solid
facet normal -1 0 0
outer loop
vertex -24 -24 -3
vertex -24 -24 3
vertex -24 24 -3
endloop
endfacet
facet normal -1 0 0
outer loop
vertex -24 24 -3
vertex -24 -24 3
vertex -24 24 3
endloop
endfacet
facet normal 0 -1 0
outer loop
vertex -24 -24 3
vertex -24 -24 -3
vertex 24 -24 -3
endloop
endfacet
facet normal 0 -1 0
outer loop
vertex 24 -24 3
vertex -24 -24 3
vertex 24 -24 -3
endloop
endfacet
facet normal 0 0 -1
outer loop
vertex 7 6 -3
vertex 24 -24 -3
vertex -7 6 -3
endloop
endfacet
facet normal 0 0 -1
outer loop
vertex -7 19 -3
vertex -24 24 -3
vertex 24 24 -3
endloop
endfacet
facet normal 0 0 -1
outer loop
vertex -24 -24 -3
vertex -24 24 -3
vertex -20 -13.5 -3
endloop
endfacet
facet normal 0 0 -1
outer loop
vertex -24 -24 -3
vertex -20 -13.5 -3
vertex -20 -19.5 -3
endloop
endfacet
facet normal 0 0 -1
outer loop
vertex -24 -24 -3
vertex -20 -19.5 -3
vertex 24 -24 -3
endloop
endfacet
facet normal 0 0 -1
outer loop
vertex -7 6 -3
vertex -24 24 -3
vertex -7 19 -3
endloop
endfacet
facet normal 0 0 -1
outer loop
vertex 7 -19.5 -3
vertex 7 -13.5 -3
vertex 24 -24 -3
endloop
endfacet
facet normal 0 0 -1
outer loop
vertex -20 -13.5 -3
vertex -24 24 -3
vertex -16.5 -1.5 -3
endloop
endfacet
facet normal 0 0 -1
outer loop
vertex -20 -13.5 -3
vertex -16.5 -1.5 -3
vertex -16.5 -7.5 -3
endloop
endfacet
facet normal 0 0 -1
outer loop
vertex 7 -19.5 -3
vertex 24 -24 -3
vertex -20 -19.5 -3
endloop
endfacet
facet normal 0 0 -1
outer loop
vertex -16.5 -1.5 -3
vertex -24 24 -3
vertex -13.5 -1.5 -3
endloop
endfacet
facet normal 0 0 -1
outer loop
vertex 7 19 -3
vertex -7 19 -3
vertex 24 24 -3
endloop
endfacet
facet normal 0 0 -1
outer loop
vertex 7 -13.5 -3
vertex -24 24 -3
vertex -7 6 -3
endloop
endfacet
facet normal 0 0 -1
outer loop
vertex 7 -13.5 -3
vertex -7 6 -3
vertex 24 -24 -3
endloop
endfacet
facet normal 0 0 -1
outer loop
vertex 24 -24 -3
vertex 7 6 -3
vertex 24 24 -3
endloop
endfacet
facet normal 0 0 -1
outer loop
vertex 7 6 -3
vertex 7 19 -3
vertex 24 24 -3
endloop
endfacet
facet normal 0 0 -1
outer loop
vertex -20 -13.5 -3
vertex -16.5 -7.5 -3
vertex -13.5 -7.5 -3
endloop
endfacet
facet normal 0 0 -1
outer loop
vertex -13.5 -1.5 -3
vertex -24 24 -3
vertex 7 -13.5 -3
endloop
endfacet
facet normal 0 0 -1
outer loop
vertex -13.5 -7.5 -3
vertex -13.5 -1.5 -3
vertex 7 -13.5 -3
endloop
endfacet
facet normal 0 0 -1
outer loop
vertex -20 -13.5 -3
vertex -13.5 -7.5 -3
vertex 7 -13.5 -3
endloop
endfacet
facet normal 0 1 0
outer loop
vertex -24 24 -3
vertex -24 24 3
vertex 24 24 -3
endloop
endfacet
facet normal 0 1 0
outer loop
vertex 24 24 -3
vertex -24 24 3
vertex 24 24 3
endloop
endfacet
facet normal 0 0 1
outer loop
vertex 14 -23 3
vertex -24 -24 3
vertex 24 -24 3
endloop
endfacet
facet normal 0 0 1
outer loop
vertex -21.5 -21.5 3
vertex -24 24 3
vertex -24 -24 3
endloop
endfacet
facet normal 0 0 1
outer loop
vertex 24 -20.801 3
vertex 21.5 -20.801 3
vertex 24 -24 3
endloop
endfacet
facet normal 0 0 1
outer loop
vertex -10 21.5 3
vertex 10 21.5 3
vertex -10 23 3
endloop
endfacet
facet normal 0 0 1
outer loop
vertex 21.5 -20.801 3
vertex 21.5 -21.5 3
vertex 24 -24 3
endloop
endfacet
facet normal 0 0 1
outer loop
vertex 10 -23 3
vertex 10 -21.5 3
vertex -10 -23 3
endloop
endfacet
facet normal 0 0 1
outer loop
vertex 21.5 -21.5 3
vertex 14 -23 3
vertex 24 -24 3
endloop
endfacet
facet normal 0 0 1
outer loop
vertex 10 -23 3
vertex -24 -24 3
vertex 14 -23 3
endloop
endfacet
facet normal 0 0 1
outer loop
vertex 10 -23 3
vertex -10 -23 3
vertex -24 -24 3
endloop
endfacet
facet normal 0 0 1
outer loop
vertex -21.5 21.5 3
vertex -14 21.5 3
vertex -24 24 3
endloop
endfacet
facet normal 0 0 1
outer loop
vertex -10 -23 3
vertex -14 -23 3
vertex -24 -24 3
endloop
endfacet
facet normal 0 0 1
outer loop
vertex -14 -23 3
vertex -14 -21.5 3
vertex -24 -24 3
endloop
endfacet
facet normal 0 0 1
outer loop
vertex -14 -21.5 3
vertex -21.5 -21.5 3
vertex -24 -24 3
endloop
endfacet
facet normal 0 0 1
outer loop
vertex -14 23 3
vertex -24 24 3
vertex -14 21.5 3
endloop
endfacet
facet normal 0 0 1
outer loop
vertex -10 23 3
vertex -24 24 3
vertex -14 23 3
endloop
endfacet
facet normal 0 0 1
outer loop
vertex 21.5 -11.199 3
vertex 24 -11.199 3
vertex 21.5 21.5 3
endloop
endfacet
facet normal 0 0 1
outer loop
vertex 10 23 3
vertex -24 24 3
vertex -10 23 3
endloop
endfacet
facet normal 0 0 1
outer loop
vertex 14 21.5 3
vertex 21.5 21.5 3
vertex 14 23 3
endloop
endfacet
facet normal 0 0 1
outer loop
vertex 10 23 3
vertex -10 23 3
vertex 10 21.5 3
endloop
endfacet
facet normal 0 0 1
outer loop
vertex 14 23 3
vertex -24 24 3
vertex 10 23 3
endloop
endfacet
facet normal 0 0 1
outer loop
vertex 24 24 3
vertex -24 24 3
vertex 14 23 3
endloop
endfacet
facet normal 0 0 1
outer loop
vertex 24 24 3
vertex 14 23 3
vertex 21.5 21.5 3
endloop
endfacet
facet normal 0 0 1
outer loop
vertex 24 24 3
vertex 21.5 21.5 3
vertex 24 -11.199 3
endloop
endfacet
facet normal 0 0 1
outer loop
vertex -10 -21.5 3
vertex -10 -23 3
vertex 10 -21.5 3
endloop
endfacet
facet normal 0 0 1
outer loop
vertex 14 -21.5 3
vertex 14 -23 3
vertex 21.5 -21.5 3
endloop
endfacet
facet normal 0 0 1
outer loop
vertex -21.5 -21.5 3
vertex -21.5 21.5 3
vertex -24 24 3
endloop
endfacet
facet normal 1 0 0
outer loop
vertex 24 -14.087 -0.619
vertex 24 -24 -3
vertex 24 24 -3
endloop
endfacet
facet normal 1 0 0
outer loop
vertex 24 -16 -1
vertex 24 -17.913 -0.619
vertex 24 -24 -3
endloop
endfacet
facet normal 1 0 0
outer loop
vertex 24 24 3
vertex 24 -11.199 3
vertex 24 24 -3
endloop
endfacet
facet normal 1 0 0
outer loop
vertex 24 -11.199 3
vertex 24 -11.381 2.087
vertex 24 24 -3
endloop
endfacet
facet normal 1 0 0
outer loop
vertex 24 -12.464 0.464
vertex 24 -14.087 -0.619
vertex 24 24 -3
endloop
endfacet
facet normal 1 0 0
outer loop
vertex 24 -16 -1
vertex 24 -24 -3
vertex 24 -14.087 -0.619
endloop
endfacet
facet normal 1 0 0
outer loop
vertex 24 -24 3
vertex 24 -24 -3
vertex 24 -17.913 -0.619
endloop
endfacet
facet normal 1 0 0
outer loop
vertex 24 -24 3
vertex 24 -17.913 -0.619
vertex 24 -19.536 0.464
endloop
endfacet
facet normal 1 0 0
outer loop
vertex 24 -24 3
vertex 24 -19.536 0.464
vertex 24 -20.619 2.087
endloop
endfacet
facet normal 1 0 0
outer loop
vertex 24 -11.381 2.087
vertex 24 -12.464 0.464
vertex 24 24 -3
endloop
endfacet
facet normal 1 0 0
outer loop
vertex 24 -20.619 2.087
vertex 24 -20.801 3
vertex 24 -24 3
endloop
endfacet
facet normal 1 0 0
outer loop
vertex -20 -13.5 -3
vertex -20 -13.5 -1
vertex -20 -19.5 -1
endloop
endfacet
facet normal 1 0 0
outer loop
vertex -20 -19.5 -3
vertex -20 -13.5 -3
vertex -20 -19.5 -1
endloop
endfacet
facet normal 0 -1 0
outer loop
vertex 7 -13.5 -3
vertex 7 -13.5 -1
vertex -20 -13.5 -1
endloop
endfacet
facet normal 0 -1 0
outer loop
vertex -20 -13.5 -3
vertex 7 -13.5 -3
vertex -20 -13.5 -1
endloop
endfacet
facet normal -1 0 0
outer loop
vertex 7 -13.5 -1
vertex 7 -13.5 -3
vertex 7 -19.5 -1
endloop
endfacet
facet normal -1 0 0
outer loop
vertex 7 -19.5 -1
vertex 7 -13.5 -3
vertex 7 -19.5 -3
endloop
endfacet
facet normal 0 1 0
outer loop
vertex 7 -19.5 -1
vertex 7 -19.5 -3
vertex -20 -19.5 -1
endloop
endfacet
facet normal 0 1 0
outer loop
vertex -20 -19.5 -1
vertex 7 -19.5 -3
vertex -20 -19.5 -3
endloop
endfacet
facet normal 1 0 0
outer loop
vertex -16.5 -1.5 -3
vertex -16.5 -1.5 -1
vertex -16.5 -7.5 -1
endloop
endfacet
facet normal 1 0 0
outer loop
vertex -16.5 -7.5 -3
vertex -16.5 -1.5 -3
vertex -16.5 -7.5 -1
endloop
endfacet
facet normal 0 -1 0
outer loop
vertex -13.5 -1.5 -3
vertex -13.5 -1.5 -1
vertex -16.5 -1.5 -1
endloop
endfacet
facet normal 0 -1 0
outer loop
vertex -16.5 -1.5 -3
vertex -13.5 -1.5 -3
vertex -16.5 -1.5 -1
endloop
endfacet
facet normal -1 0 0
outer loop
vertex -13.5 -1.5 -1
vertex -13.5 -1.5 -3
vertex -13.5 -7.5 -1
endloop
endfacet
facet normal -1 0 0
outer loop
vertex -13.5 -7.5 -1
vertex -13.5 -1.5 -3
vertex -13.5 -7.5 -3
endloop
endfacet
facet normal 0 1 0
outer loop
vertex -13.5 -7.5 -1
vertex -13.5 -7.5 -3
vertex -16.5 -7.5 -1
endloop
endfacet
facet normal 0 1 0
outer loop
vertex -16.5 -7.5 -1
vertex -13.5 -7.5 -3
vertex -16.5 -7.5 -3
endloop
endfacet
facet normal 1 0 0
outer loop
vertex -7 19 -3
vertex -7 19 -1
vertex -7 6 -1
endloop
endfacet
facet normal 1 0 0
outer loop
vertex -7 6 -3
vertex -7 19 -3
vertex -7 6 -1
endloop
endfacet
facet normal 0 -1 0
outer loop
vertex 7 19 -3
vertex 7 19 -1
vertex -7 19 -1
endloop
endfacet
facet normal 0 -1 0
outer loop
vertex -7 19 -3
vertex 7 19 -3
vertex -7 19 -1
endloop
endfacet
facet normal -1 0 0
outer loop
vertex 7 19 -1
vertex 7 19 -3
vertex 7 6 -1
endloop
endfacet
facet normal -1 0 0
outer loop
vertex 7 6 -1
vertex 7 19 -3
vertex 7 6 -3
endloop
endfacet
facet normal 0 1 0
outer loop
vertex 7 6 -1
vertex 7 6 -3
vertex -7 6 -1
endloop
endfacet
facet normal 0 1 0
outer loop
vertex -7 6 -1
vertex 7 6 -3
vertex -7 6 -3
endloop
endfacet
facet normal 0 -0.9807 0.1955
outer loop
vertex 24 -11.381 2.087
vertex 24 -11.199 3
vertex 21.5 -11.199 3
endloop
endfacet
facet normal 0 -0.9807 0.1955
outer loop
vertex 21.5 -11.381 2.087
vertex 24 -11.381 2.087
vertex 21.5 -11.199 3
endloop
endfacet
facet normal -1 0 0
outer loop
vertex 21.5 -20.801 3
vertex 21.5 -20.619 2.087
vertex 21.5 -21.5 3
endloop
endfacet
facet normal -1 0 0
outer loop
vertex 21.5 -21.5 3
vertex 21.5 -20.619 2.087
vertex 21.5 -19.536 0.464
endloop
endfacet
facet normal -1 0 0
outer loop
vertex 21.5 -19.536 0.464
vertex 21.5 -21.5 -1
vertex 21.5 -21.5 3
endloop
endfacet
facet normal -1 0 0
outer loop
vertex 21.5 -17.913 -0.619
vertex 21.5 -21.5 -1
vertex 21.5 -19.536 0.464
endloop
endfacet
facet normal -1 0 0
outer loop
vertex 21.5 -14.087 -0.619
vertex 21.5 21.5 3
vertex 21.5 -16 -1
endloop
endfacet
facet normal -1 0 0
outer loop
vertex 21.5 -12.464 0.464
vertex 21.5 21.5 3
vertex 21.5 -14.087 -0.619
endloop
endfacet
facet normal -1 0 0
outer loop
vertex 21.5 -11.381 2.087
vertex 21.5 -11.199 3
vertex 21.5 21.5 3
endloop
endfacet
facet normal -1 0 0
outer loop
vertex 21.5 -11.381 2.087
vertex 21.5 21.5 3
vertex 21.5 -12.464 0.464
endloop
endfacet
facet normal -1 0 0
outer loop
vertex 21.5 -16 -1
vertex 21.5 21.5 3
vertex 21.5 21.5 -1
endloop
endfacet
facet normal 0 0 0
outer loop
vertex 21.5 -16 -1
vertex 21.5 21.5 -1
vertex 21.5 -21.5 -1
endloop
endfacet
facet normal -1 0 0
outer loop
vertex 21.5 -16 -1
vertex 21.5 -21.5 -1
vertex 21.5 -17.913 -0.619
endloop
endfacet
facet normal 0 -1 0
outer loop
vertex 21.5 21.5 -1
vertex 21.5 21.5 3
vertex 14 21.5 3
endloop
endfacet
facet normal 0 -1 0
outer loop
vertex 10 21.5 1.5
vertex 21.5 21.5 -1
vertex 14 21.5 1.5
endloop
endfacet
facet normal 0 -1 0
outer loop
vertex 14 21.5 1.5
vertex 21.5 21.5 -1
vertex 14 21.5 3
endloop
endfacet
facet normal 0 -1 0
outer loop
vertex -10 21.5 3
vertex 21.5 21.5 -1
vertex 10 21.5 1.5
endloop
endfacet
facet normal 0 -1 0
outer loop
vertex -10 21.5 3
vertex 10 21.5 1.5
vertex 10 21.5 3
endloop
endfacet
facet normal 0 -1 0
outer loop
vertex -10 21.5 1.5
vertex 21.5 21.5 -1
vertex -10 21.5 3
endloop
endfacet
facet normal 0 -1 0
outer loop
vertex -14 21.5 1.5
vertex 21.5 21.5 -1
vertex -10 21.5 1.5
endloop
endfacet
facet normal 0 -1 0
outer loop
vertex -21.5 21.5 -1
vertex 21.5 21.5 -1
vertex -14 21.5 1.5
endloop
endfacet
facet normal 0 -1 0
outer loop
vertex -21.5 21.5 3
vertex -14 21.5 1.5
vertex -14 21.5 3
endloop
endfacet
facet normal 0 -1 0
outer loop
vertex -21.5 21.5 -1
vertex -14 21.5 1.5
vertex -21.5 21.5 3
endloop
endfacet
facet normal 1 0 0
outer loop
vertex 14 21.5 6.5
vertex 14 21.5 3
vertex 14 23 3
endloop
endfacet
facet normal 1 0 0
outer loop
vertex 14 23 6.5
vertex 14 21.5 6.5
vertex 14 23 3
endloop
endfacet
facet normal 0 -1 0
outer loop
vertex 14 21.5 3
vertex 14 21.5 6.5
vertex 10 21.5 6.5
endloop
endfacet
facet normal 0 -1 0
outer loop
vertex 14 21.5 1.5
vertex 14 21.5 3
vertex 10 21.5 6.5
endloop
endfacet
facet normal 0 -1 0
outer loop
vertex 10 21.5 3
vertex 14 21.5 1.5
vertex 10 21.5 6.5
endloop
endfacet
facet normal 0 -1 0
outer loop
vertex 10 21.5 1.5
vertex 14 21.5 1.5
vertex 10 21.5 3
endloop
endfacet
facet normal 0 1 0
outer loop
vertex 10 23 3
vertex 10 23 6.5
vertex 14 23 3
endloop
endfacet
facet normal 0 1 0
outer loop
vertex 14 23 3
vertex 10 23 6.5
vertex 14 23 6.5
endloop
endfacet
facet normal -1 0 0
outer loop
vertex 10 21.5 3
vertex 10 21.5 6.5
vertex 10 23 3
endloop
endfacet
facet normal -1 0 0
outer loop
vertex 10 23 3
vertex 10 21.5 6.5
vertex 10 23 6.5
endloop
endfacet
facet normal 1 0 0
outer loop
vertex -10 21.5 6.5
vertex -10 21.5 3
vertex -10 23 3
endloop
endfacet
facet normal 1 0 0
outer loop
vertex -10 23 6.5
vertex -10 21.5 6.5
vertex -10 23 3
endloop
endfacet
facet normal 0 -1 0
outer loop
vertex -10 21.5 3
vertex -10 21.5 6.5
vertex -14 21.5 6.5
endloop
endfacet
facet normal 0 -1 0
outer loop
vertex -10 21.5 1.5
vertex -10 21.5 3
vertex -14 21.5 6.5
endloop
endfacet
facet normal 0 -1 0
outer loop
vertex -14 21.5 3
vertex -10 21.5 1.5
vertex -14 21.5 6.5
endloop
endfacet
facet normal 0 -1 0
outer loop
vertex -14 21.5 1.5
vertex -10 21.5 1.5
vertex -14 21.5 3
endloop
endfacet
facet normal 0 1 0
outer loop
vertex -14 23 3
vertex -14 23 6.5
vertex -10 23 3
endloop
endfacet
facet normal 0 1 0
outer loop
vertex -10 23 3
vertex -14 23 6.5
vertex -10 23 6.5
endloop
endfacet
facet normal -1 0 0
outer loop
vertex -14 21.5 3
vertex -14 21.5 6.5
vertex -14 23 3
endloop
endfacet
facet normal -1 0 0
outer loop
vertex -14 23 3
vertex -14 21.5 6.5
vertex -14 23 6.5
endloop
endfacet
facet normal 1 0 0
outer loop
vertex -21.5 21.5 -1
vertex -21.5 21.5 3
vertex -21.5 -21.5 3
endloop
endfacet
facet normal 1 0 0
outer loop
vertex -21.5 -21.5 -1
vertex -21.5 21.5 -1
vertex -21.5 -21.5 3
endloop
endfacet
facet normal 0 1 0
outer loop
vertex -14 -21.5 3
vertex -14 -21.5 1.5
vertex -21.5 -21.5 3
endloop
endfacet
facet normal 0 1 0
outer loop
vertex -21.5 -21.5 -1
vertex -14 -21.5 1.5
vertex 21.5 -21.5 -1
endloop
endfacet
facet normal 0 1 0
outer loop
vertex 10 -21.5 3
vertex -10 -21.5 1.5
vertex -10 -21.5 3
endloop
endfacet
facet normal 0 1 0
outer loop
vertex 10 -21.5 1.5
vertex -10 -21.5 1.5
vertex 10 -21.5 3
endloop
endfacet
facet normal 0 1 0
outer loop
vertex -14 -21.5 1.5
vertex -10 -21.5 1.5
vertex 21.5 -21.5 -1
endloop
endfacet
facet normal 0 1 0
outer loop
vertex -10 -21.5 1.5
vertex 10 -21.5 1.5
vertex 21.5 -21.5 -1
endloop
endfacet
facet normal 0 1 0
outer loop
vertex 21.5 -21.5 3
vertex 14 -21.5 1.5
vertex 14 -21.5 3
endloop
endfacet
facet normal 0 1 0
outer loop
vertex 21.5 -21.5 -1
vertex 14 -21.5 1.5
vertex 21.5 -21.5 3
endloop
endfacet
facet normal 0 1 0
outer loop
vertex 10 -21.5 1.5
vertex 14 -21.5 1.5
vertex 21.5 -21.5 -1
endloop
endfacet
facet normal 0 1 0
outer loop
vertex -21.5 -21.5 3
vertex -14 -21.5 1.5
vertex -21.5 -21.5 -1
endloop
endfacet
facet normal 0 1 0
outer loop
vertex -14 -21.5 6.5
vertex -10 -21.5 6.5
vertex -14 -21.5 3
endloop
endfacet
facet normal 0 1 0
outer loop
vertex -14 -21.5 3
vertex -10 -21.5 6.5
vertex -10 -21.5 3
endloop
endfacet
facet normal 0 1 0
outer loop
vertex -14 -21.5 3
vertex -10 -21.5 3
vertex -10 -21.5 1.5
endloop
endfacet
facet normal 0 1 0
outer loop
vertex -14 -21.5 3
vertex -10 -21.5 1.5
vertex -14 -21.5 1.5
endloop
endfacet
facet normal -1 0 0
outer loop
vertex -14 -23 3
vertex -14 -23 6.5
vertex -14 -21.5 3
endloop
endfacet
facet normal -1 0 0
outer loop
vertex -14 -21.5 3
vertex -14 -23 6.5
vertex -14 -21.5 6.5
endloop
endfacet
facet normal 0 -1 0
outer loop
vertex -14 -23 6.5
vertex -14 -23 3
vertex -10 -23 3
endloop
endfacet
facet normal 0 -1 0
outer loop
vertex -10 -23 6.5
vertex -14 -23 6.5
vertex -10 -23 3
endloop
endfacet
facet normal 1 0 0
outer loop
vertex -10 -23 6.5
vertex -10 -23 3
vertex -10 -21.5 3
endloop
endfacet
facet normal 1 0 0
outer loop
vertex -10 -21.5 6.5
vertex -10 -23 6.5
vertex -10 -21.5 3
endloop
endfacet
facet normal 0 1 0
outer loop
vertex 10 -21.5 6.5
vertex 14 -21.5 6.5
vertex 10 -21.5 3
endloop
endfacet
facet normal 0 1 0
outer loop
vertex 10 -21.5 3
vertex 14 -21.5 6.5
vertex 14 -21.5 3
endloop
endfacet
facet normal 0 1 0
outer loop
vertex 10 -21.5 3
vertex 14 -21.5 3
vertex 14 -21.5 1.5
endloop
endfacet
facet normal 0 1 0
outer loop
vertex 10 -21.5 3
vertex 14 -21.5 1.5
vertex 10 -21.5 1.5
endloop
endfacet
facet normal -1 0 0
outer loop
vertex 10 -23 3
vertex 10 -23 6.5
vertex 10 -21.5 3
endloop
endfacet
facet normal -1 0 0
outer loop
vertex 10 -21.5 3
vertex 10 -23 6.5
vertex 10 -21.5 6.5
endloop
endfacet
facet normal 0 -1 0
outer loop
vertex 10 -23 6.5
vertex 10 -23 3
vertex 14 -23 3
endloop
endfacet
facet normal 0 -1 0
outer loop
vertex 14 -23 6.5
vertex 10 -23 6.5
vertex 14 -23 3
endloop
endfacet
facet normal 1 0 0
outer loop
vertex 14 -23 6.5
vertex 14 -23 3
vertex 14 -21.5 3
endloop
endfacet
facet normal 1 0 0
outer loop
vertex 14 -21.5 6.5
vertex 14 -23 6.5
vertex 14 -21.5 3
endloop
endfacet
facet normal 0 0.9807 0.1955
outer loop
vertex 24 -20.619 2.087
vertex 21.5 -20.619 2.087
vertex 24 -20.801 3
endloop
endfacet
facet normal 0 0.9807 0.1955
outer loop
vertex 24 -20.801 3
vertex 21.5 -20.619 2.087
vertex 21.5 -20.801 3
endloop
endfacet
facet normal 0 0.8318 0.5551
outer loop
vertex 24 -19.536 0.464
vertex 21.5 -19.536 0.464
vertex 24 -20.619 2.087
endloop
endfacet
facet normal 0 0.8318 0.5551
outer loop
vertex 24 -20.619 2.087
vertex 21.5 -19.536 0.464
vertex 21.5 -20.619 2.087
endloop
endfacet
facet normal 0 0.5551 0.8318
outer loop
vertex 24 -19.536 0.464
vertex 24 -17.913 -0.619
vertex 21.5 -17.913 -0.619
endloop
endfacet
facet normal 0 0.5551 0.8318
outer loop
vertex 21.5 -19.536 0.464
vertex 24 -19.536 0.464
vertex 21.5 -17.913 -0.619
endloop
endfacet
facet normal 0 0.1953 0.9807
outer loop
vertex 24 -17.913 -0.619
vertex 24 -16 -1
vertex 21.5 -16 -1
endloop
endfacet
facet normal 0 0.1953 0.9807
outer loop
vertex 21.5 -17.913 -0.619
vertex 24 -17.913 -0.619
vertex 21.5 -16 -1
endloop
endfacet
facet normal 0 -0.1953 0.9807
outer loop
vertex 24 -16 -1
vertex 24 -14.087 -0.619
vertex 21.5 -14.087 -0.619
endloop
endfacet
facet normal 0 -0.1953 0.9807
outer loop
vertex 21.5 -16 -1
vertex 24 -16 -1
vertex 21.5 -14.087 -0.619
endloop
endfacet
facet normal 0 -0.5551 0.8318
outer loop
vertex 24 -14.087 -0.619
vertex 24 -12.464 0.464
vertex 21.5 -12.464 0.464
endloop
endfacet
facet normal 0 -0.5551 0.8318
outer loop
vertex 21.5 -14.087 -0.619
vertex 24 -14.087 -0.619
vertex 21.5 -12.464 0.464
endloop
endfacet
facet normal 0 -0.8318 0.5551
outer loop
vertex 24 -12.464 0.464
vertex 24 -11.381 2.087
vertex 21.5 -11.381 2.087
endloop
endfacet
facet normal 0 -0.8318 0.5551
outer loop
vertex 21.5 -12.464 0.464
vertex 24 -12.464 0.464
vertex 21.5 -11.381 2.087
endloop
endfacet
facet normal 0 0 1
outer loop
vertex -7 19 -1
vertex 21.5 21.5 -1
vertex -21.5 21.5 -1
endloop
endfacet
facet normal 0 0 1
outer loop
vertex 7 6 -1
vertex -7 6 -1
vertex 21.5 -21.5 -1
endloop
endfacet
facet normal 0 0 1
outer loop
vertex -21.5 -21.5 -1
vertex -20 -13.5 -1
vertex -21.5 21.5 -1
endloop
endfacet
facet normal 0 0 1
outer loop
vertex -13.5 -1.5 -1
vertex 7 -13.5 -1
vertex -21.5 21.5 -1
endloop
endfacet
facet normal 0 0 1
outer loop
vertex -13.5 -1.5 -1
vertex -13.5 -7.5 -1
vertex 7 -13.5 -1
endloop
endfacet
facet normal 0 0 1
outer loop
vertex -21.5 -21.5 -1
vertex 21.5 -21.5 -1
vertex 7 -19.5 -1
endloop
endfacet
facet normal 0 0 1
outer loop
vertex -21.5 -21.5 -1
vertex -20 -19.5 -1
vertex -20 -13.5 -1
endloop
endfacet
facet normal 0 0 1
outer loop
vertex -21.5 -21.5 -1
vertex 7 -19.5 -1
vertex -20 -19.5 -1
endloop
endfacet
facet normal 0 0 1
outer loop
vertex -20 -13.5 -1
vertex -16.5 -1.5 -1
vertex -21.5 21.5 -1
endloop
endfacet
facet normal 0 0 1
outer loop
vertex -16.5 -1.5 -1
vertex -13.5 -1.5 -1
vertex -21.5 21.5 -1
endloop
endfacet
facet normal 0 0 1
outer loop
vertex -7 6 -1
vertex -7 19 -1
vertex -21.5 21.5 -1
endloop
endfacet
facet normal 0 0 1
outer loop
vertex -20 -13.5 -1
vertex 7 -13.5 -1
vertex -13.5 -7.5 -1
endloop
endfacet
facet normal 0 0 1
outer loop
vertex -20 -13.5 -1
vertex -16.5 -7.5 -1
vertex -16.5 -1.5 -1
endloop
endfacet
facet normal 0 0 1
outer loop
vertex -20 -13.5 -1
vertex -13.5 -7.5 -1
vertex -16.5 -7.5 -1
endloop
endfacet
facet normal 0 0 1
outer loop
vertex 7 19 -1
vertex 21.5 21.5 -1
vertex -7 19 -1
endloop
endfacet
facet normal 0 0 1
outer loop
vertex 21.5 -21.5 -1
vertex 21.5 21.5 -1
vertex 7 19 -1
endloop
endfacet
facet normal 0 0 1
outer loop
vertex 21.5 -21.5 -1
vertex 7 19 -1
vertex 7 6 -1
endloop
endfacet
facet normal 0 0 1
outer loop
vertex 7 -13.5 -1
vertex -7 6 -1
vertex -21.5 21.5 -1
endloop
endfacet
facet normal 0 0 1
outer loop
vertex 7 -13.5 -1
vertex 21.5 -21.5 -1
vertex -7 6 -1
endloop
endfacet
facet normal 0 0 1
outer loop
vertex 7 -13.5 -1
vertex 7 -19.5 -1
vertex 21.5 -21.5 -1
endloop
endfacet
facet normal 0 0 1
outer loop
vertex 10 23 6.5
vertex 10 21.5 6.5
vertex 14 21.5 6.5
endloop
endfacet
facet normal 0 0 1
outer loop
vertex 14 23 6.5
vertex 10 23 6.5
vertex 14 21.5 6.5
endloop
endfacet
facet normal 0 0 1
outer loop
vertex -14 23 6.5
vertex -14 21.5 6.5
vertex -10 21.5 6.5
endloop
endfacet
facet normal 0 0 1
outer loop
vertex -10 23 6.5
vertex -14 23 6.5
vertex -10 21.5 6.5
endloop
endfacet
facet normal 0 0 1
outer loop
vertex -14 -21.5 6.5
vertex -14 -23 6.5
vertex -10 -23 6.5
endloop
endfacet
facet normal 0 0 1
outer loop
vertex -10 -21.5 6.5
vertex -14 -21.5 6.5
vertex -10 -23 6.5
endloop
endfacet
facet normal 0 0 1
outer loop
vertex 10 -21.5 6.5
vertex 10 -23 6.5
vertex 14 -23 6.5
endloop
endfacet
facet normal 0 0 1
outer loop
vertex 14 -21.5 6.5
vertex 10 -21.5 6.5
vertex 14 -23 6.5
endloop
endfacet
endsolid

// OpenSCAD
difference(){
	//Cubo de fuera
	cube(size=[48,48,6], center = true);
	//Cubo de dentro
	translate([0,0,2]) cube(size=[43,43,6], center = true);
	// Cubo Usb
	translate([0,12.5,-1]) cube(size=[14,13,6], center = true);
	//Cubo pines
	translate([-6.5,-16.5,-3]) cube(size=[27,6,6], center = true);
	//Cubo luz
	translate([-15,-4.5,0.5]) cube(size=[3,6,7.7], center = true);
	//Nariz
	translate([18,-16,4]) rotate([90,0,90]) cylinder(20,5,5);
}
translate([12,22.25,4]) cube(size=[4,1.5,5], center = true);
translate([-12,22.25,4]) cube(size=[4,1.5,5], center = true);
translate([12,-22.25,4]) cube(size=[4,1.5,5], center = true);
translate([-12,-22.25,4]) cube(size=[4,1.5,5], center = true);
